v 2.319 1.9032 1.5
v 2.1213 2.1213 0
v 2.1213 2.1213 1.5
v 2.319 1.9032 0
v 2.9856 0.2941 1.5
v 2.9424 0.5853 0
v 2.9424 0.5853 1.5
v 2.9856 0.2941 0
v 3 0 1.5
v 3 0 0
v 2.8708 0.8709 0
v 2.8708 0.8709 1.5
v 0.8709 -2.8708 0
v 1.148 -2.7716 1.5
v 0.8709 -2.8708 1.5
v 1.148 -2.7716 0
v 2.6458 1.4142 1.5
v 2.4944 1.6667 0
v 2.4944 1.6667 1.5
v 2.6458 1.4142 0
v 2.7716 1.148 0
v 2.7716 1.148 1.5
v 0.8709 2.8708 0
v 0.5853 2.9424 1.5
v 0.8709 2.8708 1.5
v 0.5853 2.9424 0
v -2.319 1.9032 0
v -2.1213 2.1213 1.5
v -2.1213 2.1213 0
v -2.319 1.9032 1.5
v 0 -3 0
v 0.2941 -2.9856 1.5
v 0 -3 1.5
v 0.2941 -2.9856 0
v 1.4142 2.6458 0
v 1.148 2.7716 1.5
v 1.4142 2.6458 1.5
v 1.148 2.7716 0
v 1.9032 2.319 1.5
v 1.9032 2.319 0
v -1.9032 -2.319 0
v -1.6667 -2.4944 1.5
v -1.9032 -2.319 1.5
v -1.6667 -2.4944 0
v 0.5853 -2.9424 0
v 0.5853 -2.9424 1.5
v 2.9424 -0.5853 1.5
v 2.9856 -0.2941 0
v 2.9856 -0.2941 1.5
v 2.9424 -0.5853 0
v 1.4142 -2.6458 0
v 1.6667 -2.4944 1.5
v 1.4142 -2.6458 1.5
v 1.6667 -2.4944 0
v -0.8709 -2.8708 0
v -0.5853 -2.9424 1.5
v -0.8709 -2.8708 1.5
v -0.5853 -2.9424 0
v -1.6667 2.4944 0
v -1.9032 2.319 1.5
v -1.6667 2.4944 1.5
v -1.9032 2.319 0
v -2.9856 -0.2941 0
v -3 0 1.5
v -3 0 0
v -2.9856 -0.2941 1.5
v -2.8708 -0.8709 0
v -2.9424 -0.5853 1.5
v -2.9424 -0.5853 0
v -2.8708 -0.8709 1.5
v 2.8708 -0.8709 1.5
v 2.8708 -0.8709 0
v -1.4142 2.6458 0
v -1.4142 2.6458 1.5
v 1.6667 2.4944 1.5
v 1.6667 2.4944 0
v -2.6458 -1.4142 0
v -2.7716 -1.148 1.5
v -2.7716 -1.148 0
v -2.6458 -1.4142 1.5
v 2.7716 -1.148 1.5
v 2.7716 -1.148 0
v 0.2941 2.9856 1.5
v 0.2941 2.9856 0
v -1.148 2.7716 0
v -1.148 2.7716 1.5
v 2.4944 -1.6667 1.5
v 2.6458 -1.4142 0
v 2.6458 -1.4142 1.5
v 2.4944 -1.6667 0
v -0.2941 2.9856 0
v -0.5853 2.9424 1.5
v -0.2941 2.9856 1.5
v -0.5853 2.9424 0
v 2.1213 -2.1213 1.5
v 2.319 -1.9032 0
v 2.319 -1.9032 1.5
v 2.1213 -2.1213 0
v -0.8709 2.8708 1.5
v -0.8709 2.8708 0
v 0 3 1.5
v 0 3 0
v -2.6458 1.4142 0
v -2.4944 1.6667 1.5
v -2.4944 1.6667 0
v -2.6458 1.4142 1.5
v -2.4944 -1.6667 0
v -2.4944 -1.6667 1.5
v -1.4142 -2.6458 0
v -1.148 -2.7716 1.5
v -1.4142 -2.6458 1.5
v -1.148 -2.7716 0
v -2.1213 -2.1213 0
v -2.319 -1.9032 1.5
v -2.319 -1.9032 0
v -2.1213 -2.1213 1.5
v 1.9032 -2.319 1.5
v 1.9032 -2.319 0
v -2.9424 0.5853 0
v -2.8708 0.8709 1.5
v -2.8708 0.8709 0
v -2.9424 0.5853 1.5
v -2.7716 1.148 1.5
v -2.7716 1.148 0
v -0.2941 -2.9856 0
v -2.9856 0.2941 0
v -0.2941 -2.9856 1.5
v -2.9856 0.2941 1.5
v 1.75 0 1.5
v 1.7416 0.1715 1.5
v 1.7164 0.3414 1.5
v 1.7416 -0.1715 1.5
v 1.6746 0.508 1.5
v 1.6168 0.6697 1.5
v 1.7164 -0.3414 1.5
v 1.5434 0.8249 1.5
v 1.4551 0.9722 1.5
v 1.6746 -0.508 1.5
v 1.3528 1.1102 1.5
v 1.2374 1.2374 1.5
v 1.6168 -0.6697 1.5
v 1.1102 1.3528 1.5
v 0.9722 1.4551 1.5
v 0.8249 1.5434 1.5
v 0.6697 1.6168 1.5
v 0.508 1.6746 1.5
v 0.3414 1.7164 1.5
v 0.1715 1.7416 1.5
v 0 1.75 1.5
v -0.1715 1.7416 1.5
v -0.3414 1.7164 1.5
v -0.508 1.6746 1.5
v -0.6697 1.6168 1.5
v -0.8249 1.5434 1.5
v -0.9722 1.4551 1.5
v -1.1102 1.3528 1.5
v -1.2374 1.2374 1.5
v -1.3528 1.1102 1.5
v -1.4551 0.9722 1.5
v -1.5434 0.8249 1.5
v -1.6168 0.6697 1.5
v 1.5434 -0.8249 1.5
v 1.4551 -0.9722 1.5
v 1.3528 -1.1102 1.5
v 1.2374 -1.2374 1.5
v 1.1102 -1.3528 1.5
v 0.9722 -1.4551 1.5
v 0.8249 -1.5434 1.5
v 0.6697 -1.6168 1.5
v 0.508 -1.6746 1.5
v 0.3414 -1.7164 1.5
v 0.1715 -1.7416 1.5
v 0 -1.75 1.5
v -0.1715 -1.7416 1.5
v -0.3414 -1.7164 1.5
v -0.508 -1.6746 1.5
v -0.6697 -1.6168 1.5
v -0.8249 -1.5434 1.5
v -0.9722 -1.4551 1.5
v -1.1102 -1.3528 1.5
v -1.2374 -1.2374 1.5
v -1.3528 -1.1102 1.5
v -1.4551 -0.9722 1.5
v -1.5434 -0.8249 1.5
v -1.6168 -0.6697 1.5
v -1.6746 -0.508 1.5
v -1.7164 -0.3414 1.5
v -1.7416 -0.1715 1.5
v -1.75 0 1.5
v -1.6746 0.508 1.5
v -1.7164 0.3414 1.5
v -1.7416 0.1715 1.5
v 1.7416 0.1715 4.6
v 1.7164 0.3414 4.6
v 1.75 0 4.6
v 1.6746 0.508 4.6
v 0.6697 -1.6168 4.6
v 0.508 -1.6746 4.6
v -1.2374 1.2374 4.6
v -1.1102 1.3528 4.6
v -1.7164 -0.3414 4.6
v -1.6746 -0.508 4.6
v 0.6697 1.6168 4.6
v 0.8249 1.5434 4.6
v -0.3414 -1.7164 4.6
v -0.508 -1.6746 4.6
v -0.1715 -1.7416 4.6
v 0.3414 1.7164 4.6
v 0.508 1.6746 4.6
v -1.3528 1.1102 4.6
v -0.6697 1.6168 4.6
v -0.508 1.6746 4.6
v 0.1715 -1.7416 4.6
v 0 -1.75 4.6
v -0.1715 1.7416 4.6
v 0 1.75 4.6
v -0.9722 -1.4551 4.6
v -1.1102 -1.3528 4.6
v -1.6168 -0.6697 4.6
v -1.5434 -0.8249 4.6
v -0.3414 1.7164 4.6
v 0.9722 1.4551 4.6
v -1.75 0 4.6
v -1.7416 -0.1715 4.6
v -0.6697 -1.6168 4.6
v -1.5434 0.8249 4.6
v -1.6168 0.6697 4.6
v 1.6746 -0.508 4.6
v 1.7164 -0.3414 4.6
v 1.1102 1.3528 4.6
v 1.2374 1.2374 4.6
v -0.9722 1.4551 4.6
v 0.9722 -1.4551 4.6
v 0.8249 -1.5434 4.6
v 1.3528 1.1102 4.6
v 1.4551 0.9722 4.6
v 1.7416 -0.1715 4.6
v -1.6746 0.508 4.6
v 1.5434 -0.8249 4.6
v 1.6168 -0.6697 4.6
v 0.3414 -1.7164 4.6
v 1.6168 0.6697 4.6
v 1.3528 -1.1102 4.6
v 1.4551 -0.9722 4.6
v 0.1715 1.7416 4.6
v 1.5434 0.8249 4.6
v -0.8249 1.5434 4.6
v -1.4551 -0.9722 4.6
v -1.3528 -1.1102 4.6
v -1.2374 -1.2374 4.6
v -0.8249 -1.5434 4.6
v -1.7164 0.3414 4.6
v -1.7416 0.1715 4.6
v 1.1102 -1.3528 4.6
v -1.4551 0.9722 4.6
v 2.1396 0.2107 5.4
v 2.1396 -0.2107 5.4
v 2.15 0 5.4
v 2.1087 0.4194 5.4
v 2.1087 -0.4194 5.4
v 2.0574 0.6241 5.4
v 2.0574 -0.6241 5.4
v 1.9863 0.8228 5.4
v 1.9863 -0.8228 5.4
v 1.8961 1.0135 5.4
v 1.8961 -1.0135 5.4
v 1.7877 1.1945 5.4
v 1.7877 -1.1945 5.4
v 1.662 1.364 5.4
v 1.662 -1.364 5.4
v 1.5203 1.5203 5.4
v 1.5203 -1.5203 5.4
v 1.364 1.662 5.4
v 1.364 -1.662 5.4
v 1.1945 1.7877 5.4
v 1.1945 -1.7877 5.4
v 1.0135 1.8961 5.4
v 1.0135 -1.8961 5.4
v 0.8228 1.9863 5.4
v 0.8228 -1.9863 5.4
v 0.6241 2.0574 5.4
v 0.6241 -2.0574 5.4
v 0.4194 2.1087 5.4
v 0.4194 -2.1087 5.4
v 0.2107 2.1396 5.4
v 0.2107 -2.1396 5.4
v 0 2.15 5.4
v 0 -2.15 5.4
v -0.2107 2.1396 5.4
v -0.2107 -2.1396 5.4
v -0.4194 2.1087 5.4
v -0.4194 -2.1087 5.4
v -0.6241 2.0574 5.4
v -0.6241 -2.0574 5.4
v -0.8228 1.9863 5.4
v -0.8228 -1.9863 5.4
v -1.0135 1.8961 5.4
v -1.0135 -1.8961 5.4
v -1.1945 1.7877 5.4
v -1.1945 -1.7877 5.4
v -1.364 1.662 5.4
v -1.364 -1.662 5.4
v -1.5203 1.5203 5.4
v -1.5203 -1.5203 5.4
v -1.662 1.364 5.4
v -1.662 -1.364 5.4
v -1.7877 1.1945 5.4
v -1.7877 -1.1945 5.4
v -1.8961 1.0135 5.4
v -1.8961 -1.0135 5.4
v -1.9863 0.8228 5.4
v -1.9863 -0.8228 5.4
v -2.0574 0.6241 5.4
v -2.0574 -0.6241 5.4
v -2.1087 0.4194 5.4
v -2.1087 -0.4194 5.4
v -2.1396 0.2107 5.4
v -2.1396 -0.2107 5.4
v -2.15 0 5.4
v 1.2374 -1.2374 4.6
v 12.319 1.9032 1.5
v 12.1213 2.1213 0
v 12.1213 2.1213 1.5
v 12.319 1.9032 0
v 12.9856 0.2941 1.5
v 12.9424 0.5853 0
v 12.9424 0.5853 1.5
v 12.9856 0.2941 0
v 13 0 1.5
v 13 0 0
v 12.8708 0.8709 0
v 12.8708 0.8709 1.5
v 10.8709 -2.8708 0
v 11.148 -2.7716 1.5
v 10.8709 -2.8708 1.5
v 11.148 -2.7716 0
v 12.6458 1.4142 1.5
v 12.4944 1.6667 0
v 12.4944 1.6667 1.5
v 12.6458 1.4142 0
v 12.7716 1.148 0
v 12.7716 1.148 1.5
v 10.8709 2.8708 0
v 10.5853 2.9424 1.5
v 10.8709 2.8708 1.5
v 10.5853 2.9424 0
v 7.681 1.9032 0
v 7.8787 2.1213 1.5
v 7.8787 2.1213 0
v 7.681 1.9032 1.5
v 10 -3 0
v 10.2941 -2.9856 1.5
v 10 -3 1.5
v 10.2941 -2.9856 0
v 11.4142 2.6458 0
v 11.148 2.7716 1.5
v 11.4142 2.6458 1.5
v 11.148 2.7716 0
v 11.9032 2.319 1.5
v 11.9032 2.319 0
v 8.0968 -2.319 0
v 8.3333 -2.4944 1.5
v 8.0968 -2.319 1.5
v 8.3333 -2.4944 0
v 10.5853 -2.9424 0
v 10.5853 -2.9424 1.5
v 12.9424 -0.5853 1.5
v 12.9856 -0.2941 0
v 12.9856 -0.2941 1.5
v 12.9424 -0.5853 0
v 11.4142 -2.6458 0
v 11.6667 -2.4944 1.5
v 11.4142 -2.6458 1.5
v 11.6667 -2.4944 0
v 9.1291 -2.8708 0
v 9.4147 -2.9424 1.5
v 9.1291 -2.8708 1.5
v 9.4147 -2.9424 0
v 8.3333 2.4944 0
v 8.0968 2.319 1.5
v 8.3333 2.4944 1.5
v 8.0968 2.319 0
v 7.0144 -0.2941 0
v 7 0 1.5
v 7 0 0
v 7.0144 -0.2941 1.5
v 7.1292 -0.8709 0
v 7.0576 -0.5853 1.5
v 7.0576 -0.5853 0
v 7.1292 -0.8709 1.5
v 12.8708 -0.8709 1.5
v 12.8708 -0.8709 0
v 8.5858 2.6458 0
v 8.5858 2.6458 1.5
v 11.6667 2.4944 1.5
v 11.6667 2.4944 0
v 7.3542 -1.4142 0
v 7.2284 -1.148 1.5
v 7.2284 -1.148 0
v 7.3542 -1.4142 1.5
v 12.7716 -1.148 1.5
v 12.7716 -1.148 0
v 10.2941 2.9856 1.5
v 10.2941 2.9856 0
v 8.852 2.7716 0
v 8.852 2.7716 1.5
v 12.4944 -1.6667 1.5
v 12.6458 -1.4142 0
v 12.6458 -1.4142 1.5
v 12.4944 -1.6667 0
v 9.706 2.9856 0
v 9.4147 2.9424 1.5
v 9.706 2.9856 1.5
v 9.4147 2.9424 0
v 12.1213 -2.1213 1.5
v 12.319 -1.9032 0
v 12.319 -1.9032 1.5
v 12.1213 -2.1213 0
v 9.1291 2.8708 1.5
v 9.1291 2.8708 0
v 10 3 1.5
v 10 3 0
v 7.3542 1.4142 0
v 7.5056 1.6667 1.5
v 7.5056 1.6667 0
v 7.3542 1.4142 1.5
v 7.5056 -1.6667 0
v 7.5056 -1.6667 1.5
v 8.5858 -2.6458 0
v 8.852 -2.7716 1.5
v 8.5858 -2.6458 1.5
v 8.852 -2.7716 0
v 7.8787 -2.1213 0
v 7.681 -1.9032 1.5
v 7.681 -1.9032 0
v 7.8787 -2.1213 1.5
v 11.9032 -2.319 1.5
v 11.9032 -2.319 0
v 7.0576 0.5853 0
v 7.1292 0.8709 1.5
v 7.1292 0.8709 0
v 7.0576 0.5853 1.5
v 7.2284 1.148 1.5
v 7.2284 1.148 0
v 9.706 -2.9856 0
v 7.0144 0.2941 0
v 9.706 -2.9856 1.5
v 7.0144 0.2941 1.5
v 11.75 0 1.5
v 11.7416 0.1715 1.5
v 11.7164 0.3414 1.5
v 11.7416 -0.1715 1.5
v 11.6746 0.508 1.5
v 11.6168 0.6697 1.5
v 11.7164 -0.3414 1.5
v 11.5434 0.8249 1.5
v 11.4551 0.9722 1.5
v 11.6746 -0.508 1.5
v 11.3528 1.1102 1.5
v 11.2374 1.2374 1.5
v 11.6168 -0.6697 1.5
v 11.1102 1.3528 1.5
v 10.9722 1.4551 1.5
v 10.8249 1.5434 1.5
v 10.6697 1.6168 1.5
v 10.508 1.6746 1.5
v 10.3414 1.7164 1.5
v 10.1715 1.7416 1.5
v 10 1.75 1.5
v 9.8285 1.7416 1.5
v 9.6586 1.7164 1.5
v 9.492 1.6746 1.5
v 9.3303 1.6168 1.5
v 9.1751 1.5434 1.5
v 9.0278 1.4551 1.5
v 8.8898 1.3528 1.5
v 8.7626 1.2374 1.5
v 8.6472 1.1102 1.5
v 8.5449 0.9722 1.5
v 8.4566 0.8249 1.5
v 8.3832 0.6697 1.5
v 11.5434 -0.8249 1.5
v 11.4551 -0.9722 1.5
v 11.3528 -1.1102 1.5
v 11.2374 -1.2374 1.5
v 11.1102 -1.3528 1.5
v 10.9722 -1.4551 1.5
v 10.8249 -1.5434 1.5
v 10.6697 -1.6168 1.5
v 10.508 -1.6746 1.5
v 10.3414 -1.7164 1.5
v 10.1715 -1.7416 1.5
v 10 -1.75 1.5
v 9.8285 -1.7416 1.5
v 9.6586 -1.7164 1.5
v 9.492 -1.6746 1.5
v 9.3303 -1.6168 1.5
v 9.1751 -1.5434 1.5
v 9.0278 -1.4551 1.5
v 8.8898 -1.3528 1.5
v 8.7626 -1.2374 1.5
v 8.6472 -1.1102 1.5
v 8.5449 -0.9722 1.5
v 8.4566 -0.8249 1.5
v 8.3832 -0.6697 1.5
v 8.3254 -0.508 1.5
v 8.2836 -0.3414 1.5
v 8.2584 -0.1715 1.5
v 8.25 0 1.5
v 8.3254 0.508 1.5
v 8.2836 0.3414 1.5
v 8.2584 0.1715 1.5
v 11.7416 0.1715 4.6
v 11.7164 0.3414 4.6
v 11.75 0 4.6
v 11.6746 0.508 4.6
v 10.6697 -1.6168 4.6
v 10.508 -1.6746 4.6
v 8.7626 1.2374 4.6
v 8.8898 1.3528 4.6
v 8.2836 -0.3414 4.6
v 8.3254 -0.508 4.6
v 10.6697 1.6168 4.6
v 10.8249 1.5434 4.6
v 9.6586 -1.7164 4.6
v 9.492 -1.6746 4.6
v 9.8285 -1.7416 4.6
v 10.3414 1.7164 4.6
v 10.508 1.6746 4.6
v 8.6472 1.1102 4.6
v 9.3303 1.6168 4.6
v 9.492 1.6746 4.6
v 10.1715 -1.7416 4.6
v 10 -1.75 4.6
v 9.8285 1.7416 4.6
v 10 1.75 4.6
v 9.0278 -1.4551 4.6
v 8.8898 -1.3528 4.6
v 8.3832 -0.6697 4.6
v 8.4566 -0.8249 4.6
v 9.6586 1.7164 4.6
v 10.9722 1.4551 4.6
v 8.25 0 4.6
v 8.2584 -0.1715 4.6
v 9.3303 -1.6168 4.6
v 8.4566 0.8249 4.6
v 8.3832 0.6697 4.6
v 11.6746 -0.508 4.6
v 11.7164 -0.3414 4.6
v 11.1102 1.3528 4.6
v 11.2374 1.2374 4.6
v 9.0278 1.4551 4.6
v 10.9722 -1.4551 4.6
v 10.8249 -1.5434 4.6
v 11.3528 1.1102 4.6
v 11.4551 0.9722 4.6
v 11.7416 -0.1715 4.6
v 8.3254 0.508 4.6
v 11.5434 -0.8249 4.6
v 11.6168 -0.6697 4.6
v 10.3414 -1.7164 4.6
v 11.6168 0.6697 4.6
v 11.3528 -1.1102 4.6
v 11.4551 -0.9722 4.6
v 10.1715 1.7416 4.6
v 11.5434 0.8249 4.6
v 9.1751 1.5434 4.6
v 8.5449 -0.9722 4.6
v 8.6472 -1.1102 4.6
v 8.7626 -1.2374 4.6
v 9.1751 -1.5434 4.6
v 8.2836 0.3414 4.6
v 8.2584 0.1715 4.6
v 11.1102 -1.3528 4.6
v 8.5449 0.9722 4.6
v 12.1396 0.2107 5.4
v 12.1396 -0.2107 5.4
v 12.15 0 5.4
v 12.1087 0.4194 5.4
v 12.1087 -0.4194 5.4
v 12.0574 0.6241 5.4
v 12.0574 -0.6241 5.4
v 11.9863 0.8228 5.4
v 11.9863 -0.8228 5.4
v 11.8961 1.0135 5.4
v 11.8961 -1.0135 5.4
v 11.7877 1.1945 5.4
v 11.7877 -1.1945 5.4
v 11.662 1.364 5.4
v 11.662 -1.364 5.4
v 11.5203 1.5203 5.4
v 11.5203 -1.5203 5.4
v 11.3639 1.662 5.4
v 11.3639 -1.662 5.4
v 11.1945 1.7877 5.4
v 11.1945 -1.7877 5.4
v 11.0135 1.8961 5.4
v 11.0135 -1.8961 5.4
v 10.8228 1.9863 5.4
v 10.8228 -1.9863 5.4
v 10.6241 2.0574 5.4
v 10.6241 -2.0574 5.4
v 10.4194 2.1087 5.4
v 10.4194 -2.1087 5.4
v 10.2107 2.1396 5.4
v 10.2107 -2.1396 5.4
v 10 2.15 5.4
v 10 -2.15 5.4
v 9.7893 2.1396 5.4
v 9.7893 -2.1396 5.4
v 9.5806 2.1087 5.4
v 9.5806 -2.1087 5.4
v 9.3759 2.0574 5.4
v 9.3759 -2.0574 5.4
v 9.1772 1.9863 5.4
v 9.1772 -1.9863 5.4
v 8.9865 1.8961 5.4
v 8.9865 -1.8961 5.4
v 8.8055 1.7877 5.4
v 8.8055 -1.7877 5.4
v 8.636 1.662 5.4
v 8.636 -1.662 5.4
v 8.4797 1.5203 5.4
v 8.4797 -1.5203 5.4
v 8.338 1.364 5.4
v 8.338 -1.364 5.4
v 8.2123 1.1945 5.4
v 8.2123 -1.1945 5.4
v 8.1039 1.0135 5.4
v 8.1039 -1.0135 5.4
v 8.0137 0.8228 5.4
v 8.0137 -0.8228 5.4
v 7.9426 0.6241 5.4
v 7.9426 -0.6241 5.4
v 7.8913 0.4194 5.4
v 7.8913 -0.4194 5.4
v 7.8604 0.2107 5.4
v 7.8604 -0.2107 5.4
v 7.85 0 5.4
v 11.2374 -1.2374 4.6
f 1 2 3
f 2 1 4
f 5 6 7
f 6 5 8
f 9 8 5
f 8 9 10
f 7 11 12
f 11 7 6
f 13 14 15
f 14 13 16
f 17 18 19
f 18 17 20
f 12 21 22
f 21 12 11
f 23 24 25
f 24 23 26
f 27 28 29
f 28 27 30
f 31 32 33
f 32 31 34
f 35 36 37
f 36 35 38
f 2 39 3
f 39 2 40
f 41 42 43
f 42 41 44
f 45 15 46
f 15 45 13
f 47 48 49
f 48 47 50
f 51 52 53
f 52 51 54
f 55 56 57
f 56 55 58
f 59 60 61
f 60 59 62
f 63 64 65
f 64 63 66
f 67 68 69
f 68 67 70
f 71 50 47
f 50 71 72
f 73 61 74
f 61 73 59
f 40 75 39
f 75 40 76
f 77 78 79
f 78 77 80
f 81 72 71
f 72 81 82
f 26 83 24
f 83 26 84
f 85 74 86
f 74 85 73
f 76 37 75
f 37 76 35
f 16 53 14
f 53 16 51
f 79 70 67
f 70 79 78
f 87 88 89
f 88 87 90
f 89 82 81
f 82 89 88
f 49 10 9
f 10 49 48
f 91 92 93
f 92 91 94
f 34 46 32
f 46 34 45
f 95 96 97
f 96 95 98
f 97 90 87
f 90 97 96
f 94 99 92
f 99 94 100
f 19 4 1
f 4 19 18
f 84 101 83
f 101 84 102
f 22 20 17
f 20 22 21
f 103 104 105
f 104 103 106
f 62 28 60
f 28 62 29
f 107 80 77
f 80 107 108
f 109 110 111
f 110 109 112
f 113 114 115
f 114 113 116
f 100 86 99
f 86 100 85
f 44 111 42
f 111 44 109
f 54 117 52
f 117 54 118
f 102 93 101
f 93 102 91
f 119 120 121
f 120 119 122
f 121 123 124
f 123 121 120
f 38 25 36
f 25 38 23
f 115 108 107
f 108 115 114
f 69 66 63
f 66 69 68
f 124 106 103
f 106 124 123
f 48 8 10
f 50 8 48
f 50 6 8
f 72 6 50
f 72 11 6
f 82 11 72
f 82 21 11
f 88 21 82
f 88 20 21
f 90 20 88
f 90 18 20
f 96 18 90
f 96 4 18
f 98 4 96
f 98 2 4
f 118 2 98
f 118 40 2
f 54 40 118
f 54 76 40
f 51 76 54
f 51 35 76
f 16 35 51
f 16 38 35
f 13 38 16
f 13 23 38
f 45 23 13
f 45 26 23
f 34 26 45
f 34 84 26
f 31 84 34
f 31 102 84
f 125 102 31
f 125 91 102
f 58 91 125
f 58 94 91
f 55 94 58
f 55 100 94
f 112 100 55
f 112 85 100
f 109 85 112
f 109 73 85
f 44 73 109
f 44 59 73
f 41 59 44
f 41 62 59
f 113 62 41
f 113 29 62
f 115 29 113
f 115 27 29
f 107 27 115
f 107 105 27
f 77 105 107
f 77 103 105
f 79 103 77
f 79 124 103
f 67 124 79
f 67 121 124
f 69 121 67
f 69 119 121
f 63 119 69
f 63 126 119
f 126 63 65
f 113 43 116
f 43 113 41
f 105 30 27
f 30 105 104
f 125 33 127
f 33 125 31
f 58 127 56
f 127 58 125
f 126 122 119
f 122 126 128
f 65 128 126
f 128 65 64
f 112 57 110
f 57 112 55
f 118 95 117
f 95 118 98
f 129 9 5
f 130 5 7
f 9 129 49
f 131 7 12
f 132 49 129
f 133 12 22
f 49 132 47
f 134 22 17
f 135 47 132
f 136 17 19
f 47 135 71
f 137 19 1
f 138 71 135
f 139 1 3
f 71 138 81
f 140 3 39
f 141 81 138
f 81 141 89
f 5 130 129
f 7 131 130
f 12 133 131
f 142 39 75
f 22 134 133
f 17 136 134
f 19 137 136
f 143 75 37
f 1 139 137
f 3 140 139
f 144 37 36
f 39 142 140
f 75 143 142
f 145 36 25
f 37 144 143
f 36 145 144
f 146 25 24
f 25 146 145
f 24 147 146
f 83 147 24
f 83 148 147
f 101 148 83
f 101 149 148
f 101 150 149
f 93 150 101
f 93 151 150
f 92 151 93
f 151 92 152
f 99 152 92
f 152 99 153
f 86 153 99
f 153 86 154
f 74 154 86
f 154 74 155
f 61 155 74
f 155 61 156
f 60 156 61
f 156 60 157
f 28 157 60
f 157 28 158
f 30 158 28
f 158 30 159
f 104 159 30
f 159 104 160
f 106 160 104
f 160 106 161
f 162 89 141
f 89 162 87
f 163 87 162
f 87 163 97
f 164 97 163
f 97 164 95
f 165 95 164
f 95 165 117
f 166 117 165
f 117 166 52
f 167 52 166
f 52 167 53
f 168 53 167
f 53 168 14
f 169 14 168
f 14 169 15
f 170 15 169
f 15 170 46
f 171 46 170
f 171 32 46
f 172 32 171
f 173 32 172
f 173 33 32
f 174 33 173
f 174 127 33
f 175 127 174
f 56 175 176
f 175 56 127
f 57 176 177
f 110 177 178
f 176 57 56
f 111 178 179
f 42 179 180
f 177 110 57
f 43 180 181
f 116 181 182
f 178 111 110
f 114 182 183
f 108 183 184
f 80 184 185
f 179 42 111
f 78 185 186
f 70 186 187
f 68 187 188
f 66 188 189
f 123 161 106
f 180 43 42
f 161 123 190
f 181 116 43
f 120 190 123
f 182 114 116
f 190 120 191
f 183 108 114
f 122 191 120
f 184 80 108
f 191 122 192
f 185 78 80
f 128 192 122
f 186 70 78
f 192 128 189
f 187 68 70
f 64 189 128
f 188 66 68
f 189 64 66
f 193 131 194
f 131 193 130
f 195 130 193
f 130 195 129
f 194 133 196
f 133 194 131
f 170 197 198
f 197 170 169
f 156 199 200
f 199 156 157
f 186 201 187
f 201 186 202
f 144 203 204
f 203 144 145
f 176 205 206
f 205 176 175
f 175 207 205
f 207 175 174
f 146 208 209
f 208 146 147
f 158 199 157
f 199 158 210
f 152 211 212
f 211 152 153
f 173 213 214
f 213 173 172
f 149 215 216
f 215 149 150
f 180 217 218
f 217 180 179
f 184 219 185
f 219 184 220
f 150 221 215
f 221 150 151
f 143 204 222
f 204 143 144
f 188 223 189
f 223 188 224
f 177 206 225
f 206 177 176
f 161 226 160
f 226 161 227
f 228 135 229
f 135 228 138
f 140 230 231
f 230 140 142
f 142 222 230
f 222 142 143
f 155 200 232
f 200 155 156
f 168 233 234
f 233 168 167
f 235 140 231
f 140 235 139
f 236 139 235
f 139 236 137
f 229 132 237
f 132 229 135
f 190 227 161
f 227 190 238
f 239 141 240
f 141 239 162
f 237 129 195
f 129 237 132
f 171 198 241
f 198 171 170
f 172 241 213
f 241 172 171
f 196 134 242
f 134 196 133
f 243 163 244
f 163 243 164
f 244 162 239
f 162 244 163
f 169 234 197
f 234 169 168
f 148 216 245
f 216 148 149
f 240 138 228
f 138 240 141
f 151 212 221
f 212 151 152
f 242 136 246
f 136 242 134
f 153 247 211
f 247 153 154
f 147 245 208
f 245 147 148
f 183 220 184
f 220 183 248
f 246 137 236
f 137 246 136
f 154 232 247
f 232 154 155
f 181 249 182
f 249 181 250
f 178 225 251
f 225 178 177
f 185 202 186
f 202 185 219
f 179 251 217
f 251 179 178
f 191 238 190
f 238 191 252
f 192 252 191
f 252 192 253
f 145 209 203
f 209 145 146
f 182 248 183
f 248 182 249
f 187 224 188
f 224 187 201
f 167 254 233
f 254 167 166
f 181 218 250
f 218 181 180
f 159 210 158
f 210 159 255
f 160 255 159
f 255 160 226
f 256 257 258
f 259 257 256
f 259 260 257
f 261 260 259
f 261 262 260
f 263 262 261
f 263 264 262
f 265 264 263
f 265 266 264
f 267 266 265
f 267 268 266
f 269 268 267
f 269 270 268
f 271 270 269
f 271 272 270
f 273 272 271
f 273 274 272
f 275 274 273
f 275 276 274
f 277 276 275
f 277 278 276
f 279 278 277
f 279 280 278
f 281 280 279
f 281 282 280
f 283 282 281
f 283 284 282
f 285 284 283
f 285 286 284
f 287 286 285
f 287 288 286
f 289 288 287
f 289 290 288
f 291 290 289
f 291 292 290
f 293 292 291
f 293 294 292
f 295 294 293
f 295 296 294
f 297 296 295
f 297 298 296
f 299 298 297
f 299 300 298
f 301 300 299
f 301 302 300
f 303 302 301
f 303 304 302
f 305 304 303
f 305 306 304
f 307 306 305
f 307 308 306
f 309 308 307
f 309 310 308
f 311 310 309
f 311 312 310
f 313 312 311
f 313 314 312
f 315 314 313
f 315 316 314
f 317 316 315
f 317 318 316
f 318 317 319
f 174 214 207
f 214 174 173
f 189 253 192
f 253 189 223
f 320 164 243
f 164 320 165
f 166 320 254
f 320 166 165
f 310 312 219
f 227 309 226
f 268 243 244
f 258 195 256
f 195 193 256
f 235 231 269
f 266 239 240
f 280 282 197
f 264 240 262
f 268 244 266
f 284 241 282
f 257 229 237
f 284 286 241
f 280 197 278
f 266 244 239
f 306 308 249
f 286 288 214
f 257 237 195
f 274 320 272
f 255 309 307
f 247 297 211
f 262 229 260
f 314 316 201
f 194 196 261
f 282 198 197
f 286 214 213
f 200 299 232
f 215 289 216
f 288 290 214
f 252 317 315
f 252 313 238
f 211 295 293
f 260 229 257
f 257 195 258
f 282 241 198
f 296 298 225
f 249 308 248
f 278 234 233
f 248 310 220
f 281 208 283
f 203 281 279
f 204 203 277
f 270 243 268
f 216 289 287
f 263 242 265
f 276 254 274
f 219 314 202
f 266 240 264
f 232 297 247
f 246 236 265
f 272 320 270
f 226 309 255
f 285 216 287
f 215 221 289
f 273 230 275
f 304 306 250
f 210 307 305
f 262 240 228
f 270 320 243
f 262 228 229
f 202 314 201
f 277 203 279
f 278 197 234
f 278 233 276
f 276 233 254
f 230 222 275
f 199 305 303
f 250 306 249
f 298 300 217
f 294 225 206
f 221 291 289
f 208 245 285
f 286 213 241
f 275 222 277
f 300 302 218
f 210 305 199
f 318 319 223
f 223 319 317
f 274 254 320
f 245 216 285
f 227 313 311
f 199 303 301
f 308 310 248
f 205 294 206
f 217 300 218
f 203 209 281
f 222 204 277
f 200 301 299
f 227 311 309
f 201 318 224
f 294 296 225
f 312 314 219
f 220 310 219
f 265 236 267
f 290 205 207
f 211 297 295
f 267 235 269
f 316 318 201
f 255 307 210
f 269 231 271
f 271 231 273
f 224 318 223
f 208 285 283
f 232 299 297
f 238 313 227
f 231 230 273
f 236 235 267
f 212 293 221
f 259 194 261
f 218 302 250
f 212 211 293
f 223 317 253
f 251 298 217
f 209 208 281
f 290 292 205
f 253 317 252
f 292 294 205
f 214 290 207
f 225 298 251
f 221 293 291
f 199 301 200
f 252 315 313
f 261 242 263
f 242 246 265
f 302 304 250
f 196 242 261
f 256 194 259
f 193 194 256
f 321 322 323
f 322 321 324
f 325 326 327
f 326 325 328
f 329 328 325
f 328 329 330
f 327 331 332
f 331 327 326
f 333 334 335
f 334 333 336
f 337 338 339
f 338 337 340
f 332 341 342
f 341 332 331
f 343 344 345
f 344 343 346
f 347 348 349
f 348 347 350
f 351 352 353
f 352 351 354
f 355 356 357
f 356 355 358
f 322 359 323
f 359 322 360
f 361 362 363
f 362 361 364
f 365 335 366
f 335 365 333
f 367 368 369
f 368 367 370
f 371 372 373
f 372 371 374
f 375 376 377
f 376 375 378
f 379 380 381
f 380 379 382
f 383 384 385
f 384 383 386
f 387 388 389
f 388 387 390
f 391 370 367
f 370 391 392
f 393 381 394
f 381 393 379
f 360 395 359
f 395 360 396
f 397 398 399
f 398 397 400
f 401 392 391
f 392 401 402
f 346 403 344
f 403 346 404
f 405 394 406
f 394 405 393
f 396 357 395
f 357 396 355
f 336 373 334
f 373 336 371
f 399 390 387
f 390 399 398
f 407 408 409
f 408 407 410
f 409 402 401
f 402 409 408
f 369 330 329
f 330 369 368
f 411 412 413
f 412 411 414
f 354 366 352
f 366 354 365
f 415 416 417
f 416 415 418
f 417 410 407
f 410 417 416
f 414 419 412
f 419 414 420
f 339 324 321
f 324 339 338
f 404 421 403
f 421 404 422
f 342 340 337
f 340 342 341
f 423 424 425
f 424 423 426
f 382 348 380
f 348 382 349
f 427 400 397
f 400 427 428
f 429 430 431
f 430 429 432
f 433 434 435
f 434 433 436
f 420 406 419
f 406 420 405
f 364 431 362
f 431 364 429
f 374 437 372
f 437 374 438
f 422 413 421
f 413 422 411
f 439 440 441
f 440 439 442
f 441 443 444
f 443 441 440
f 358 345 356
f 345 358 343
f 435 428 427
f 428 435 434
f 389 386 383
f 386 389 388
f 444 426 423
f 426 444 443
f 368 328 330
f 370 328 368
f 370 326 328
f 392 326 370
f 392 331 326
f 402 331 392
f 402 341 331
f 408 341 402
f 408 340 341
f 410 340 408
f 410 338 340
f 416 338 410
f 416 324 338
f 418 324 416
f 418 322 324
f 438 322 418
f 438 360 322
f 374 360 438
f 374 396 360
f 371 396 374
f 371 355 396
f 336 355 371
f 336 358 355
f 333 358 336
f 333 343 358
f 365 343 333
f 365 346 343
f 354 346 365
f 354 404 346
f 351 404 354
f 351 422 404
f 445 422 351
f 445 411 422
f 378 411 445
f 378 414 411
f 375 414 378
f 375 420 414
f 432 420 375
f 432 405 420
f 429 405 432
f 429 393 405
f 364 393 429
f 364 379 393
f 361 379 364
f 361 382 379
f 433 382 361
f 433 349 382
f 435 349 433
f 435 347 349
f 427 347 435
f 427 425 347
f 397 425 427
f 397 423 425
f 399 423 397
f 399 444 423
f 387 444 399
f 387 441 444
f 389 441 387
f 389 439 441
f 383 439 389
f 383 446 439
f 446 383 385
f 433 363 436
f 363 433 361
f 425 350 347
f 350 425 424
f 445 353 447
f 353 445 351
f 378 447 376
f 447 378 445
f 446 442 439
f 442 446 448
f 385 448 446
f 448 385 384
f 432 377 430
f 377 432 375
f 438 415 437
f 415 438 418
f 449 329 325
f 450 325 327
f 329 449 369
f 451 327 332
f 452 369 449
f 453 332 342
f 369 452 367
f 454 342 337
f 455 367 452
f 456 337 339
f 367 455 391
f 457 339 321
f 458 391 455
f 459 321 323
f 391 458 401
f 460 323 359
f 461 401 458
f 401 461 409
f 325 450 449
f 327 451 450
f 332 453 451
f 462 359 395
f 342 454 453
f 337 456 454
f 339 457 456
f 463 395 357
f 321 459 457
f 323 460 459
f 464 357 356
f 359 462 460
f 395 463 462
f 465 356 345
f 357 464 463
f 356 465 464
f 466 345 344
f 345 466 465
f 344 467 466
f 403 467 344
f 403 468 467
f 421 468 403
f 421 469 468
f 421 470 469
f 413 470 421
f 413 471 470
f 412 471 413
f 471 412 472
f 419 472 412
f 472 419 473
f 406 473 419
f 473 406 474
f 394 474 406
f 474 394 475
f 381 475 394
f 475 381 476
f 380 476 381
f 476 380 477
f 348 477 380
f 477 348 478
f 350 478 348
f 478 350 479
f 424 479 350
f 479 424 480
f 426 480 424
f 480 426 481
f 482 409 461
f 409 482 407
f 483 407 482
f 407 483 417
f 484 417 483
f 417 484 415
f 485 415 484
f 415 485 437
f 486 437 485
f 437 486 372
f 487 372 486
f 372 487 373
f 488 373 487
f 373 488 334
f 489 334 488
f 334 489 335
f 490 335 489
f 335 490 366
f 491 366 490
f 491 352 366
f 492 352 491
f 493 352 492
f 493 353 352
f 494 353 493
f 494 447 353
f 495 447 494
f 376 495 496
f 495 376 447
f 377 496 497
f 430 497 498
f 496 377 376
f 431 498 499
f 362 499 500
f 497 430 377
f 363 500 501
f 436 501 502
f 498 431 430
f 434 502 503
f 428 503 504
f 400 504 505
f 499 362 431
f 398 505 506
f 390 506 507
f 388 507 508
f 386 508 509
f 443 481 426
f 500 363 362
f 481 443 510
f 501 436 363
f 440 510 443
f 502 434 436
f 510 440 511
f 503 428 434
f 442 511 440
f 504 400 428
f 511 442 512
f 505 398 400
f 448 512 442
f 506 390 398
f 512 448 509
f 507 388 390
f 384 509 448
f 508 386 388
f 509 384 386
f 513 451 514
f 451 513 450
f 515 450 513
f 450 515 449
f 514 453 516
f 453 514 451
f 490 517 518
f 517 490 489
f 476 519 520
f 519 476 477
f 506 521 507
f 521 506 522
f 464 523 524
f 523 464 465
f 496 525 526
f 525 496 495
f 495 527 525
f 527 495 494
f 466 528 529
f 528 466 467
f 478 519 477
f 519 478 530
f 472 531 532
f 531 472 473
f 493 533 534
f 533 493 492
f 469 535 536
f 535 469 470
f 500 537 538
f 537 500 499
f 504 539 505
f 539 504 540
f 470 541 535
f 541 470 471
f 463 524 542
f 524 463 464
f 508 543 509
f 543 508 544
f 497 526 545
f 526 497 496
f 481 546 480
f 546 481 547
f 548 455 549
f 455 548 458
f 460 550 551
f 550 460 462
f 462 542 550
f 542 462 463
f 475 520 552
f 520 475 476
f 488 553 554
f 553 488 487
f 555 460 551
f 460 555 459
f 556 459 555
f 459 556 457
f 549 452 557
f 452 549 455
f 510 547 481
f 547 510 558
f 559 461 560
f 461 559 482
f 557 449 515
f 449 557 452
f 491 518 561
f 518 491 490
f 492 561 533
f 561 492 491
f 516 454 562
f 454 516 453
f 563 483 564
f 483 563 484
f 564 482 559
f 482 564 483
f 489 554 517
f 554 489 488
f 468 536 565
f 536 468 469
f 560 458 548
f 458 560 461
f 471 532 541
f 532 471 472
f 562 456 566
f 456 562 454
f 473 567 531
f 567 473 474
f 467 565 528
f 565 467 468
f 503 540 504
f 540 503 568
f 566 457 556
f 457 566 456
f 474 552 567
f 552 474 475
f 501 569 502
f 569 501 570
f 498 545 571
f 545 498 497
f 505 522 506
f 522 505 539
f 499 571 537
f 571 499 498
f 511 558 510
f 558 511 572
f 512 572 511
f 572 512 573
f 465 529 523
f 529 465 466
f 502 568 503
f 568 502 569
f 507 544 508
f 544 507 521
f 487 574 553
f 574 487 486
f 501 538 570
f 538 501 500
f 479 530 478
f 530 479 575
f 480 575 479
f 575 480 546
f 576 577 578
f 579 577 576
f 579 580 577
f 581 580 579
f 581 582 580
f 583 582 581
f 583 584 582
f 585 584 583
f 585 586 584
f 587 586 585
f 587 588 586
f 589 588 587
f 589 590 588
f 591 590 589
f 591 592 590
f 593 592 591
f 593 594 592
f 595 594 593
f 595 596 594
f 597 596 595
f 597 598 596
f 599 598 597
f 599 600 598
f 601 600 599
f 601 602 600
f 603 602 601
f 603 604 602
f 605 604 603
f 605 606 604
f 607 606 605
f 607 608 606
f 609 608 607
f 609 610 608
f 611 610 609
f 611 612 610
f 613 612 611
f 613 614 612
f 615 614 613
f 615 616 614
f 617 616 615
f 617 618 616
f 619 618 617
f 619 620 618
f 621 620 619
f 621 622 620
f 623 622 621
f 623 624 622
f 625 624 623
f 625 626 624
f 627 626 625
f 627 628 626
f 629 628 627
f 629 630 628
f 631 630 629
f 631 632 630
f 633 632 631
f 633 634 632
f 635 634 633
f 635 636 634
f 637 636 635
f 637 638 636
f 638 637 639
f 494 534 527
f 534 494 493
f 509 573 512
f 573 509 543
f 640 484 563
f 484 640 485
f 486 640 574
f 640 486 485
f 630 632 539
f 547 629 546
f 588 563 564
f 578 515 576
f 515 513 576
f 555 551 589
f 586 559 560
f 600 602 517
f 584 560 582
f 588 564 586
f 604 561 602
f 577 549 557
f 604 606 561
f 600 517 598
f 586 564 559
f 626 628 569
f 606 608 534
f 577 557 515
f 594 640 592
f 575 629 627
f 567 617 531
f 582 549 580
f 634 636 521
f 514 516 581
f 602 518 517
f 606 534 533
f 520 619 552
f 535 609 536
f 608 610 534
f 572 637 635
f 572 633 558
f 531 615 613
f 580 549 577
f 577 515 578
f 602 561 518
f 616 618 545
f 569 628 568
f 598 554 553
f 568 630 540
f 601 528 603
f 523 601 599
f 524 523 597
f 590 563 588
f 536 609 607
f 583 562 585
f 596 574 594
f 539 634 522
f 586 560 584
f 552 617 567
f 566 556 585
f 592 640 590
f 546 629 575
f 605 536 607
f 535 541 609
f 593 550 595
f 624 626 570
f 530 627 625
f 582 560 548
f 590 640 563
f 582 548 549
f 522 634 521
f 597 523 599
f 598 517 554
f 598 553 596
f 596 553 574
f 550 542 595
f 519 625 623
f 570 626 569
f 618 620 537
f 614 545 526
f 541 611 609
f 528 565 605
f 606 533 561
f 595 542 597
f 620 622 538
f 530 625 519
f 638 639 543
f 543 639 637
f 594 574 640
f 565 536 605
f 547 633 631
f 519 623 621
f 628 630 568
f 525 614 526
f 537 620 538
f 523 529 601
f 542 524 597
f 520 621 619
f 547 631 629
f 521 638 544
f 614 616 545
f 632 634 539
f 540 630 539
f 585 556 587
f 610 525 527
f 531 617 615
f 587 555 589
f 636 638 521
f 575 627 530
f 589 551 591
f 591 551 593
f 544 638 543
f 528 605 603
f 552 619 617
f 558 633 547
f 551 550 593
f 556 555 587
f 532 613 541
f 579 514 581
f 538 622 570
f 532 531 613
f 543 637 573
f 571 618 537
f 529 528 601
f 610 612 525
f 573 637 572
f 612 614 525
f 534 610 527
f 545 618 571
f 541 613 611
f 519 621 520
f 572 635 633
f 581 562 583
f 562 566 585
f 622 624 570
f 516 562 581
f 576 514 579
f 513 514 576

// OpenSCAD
// =============================================================================
// SupaClock - Button caps (piezas sueltas)
// Generado para los 2 switches tactiles side-press SW1 (SELECT) y SW2 (NEXT)
// del SupaClock_Carrier. Cada cap es una pieza independiente en forma de "T"
// que se desliza por el hueco lateral del top case y transmite la presion
// del dedo al actuador del switch.
//
// === GEOMETRIA DEL SISTEMA ===
//
//   Vista lateral (corte axial por el centro del switch):
//
//     dedo --->  ┌────────────┐       AIR GAP       SWITCH
//                │  FLANGE    │  ┌──┬─────────────┐  ▽
//                │ exterior   │  │  │             │  │
//                │            │══│  │█████████████│══│ <- cara del switch
//                │  (D=6mm,   │  │  │             │  │
//                │   h=1.5)   │  └──┴─────────────┘  ▽
//                └────────────┘     STEM (D=3.5mm)
//                  pared del case (2mm)   gap (1.7mm)
//
//   Total largo cap = flange_h + stem_h
//
// === RETENCION ===
//   En reposo, el muelle del switch empuja el stem hacia AFUERA (+X), de modo
//   que el flange queda apoyado contra la cara EXTERIOR de la pared. El cap
//   se queda en su sitio sin necesidad de lip interior siempre y cuando el
//   case este cerrado. Al abrir el case, el cap puede caerse — manejarlo con
//   cuidado durante la disassembly.
//
//   Si quieres retencion permanente, sube `retention_lip_h` > 0 y aumenta
//   `retention_lip_d` por encima de hole_d.
//
// === IMPRESION ===
//   Orientar con flange en la base (cara grande hacia abajo) sin soportes.
//   PETG, PLA o ABS funcionan. Print 2 caps (codigo de abajo ya los duplica).
// =============================================================================

$fn = 64;
eps = 0.01;

// --- DEBE COINCIDIR CON EL TOP CASE ---
hole_d           = 4.0;     // = btn_hole_d del top case
wall_thickness   = 2.0;     // = grosor_pared del top case

// --- GEOMETRIA DEL CAP ---
// air_gap_to_sw = case-local X(inner_wall) - X(switch_face)
//   inner wall:  grosor_pared + inner_x = 2 + 86 = 88
//   switch face: pcb_off_x + SW1.x + switch_body_x/2 = 2.5 + 82.05 + 1.75 = 86.3
//   diff = 1.7 mm
air_gap_to_sw    = 1.7;

flange_d         = 6.0;     // diametro exterior visible
flange_h         = 1.5;     // grosor del flange
stem_d           = 3.5;     // diametro del tallo (0.5mm de holgura en hole_d=4)
stem_h           = wall_thickness + air_gap_to_sw + 0.2;  // 2 + 1.7 + 0.2 = 3.9mm
                            // +0.2 = pretravel: el stem queda 0.2mm tocando
                            // la cara del switch en reposo, sin actuarlo

// Retencion permanente activada. El lip se imprime CONICO (mas grueso en el
// extremo interno) para poder forzarlo a traves del hueco con presion durante
// el ensamble. Una vez pasado, no puede regresar.
// IMPORTANTE: imprimir en PETG/ABS o usar 100% infill. Con PLA y poco infill
// el lip se puede romper al forzarlo.
retention_lip_h  = 0.8;     // grosor del lip
retention_lip_d  = 4.3;     // diametro maximo del lip (> hole_d=4 por 0.3mm)

// =============================================================================

module button_cap() {
    union() {
        // Flange exterior (queda en la cara EXTERIOR de la pared)
        cylinder(h = flange_h, d = flange_d);

        // Tallo principal
        translate([0, 0, flange_h - eps])
            cylinder(h = stem_h + eps, d = stem_d);

        // Lip de retencion opcional (cono Ø stem_d -> Ø retention_lip_d)
        if (retention_lip_h > 0) {
            translate([0, 0, flange_h + stem_h - retention_lip_h])
                cylinder(h = retention_lip_h,
                         d1 = stem_d,
                         d2 = retention_lip_d);
        }
    }
}

// Imprimir 2 caps lado a lado (SW1 y SW2 son identicos)
button_cap();
translate([flange_d + 4, 0, 0]) button_cap();
